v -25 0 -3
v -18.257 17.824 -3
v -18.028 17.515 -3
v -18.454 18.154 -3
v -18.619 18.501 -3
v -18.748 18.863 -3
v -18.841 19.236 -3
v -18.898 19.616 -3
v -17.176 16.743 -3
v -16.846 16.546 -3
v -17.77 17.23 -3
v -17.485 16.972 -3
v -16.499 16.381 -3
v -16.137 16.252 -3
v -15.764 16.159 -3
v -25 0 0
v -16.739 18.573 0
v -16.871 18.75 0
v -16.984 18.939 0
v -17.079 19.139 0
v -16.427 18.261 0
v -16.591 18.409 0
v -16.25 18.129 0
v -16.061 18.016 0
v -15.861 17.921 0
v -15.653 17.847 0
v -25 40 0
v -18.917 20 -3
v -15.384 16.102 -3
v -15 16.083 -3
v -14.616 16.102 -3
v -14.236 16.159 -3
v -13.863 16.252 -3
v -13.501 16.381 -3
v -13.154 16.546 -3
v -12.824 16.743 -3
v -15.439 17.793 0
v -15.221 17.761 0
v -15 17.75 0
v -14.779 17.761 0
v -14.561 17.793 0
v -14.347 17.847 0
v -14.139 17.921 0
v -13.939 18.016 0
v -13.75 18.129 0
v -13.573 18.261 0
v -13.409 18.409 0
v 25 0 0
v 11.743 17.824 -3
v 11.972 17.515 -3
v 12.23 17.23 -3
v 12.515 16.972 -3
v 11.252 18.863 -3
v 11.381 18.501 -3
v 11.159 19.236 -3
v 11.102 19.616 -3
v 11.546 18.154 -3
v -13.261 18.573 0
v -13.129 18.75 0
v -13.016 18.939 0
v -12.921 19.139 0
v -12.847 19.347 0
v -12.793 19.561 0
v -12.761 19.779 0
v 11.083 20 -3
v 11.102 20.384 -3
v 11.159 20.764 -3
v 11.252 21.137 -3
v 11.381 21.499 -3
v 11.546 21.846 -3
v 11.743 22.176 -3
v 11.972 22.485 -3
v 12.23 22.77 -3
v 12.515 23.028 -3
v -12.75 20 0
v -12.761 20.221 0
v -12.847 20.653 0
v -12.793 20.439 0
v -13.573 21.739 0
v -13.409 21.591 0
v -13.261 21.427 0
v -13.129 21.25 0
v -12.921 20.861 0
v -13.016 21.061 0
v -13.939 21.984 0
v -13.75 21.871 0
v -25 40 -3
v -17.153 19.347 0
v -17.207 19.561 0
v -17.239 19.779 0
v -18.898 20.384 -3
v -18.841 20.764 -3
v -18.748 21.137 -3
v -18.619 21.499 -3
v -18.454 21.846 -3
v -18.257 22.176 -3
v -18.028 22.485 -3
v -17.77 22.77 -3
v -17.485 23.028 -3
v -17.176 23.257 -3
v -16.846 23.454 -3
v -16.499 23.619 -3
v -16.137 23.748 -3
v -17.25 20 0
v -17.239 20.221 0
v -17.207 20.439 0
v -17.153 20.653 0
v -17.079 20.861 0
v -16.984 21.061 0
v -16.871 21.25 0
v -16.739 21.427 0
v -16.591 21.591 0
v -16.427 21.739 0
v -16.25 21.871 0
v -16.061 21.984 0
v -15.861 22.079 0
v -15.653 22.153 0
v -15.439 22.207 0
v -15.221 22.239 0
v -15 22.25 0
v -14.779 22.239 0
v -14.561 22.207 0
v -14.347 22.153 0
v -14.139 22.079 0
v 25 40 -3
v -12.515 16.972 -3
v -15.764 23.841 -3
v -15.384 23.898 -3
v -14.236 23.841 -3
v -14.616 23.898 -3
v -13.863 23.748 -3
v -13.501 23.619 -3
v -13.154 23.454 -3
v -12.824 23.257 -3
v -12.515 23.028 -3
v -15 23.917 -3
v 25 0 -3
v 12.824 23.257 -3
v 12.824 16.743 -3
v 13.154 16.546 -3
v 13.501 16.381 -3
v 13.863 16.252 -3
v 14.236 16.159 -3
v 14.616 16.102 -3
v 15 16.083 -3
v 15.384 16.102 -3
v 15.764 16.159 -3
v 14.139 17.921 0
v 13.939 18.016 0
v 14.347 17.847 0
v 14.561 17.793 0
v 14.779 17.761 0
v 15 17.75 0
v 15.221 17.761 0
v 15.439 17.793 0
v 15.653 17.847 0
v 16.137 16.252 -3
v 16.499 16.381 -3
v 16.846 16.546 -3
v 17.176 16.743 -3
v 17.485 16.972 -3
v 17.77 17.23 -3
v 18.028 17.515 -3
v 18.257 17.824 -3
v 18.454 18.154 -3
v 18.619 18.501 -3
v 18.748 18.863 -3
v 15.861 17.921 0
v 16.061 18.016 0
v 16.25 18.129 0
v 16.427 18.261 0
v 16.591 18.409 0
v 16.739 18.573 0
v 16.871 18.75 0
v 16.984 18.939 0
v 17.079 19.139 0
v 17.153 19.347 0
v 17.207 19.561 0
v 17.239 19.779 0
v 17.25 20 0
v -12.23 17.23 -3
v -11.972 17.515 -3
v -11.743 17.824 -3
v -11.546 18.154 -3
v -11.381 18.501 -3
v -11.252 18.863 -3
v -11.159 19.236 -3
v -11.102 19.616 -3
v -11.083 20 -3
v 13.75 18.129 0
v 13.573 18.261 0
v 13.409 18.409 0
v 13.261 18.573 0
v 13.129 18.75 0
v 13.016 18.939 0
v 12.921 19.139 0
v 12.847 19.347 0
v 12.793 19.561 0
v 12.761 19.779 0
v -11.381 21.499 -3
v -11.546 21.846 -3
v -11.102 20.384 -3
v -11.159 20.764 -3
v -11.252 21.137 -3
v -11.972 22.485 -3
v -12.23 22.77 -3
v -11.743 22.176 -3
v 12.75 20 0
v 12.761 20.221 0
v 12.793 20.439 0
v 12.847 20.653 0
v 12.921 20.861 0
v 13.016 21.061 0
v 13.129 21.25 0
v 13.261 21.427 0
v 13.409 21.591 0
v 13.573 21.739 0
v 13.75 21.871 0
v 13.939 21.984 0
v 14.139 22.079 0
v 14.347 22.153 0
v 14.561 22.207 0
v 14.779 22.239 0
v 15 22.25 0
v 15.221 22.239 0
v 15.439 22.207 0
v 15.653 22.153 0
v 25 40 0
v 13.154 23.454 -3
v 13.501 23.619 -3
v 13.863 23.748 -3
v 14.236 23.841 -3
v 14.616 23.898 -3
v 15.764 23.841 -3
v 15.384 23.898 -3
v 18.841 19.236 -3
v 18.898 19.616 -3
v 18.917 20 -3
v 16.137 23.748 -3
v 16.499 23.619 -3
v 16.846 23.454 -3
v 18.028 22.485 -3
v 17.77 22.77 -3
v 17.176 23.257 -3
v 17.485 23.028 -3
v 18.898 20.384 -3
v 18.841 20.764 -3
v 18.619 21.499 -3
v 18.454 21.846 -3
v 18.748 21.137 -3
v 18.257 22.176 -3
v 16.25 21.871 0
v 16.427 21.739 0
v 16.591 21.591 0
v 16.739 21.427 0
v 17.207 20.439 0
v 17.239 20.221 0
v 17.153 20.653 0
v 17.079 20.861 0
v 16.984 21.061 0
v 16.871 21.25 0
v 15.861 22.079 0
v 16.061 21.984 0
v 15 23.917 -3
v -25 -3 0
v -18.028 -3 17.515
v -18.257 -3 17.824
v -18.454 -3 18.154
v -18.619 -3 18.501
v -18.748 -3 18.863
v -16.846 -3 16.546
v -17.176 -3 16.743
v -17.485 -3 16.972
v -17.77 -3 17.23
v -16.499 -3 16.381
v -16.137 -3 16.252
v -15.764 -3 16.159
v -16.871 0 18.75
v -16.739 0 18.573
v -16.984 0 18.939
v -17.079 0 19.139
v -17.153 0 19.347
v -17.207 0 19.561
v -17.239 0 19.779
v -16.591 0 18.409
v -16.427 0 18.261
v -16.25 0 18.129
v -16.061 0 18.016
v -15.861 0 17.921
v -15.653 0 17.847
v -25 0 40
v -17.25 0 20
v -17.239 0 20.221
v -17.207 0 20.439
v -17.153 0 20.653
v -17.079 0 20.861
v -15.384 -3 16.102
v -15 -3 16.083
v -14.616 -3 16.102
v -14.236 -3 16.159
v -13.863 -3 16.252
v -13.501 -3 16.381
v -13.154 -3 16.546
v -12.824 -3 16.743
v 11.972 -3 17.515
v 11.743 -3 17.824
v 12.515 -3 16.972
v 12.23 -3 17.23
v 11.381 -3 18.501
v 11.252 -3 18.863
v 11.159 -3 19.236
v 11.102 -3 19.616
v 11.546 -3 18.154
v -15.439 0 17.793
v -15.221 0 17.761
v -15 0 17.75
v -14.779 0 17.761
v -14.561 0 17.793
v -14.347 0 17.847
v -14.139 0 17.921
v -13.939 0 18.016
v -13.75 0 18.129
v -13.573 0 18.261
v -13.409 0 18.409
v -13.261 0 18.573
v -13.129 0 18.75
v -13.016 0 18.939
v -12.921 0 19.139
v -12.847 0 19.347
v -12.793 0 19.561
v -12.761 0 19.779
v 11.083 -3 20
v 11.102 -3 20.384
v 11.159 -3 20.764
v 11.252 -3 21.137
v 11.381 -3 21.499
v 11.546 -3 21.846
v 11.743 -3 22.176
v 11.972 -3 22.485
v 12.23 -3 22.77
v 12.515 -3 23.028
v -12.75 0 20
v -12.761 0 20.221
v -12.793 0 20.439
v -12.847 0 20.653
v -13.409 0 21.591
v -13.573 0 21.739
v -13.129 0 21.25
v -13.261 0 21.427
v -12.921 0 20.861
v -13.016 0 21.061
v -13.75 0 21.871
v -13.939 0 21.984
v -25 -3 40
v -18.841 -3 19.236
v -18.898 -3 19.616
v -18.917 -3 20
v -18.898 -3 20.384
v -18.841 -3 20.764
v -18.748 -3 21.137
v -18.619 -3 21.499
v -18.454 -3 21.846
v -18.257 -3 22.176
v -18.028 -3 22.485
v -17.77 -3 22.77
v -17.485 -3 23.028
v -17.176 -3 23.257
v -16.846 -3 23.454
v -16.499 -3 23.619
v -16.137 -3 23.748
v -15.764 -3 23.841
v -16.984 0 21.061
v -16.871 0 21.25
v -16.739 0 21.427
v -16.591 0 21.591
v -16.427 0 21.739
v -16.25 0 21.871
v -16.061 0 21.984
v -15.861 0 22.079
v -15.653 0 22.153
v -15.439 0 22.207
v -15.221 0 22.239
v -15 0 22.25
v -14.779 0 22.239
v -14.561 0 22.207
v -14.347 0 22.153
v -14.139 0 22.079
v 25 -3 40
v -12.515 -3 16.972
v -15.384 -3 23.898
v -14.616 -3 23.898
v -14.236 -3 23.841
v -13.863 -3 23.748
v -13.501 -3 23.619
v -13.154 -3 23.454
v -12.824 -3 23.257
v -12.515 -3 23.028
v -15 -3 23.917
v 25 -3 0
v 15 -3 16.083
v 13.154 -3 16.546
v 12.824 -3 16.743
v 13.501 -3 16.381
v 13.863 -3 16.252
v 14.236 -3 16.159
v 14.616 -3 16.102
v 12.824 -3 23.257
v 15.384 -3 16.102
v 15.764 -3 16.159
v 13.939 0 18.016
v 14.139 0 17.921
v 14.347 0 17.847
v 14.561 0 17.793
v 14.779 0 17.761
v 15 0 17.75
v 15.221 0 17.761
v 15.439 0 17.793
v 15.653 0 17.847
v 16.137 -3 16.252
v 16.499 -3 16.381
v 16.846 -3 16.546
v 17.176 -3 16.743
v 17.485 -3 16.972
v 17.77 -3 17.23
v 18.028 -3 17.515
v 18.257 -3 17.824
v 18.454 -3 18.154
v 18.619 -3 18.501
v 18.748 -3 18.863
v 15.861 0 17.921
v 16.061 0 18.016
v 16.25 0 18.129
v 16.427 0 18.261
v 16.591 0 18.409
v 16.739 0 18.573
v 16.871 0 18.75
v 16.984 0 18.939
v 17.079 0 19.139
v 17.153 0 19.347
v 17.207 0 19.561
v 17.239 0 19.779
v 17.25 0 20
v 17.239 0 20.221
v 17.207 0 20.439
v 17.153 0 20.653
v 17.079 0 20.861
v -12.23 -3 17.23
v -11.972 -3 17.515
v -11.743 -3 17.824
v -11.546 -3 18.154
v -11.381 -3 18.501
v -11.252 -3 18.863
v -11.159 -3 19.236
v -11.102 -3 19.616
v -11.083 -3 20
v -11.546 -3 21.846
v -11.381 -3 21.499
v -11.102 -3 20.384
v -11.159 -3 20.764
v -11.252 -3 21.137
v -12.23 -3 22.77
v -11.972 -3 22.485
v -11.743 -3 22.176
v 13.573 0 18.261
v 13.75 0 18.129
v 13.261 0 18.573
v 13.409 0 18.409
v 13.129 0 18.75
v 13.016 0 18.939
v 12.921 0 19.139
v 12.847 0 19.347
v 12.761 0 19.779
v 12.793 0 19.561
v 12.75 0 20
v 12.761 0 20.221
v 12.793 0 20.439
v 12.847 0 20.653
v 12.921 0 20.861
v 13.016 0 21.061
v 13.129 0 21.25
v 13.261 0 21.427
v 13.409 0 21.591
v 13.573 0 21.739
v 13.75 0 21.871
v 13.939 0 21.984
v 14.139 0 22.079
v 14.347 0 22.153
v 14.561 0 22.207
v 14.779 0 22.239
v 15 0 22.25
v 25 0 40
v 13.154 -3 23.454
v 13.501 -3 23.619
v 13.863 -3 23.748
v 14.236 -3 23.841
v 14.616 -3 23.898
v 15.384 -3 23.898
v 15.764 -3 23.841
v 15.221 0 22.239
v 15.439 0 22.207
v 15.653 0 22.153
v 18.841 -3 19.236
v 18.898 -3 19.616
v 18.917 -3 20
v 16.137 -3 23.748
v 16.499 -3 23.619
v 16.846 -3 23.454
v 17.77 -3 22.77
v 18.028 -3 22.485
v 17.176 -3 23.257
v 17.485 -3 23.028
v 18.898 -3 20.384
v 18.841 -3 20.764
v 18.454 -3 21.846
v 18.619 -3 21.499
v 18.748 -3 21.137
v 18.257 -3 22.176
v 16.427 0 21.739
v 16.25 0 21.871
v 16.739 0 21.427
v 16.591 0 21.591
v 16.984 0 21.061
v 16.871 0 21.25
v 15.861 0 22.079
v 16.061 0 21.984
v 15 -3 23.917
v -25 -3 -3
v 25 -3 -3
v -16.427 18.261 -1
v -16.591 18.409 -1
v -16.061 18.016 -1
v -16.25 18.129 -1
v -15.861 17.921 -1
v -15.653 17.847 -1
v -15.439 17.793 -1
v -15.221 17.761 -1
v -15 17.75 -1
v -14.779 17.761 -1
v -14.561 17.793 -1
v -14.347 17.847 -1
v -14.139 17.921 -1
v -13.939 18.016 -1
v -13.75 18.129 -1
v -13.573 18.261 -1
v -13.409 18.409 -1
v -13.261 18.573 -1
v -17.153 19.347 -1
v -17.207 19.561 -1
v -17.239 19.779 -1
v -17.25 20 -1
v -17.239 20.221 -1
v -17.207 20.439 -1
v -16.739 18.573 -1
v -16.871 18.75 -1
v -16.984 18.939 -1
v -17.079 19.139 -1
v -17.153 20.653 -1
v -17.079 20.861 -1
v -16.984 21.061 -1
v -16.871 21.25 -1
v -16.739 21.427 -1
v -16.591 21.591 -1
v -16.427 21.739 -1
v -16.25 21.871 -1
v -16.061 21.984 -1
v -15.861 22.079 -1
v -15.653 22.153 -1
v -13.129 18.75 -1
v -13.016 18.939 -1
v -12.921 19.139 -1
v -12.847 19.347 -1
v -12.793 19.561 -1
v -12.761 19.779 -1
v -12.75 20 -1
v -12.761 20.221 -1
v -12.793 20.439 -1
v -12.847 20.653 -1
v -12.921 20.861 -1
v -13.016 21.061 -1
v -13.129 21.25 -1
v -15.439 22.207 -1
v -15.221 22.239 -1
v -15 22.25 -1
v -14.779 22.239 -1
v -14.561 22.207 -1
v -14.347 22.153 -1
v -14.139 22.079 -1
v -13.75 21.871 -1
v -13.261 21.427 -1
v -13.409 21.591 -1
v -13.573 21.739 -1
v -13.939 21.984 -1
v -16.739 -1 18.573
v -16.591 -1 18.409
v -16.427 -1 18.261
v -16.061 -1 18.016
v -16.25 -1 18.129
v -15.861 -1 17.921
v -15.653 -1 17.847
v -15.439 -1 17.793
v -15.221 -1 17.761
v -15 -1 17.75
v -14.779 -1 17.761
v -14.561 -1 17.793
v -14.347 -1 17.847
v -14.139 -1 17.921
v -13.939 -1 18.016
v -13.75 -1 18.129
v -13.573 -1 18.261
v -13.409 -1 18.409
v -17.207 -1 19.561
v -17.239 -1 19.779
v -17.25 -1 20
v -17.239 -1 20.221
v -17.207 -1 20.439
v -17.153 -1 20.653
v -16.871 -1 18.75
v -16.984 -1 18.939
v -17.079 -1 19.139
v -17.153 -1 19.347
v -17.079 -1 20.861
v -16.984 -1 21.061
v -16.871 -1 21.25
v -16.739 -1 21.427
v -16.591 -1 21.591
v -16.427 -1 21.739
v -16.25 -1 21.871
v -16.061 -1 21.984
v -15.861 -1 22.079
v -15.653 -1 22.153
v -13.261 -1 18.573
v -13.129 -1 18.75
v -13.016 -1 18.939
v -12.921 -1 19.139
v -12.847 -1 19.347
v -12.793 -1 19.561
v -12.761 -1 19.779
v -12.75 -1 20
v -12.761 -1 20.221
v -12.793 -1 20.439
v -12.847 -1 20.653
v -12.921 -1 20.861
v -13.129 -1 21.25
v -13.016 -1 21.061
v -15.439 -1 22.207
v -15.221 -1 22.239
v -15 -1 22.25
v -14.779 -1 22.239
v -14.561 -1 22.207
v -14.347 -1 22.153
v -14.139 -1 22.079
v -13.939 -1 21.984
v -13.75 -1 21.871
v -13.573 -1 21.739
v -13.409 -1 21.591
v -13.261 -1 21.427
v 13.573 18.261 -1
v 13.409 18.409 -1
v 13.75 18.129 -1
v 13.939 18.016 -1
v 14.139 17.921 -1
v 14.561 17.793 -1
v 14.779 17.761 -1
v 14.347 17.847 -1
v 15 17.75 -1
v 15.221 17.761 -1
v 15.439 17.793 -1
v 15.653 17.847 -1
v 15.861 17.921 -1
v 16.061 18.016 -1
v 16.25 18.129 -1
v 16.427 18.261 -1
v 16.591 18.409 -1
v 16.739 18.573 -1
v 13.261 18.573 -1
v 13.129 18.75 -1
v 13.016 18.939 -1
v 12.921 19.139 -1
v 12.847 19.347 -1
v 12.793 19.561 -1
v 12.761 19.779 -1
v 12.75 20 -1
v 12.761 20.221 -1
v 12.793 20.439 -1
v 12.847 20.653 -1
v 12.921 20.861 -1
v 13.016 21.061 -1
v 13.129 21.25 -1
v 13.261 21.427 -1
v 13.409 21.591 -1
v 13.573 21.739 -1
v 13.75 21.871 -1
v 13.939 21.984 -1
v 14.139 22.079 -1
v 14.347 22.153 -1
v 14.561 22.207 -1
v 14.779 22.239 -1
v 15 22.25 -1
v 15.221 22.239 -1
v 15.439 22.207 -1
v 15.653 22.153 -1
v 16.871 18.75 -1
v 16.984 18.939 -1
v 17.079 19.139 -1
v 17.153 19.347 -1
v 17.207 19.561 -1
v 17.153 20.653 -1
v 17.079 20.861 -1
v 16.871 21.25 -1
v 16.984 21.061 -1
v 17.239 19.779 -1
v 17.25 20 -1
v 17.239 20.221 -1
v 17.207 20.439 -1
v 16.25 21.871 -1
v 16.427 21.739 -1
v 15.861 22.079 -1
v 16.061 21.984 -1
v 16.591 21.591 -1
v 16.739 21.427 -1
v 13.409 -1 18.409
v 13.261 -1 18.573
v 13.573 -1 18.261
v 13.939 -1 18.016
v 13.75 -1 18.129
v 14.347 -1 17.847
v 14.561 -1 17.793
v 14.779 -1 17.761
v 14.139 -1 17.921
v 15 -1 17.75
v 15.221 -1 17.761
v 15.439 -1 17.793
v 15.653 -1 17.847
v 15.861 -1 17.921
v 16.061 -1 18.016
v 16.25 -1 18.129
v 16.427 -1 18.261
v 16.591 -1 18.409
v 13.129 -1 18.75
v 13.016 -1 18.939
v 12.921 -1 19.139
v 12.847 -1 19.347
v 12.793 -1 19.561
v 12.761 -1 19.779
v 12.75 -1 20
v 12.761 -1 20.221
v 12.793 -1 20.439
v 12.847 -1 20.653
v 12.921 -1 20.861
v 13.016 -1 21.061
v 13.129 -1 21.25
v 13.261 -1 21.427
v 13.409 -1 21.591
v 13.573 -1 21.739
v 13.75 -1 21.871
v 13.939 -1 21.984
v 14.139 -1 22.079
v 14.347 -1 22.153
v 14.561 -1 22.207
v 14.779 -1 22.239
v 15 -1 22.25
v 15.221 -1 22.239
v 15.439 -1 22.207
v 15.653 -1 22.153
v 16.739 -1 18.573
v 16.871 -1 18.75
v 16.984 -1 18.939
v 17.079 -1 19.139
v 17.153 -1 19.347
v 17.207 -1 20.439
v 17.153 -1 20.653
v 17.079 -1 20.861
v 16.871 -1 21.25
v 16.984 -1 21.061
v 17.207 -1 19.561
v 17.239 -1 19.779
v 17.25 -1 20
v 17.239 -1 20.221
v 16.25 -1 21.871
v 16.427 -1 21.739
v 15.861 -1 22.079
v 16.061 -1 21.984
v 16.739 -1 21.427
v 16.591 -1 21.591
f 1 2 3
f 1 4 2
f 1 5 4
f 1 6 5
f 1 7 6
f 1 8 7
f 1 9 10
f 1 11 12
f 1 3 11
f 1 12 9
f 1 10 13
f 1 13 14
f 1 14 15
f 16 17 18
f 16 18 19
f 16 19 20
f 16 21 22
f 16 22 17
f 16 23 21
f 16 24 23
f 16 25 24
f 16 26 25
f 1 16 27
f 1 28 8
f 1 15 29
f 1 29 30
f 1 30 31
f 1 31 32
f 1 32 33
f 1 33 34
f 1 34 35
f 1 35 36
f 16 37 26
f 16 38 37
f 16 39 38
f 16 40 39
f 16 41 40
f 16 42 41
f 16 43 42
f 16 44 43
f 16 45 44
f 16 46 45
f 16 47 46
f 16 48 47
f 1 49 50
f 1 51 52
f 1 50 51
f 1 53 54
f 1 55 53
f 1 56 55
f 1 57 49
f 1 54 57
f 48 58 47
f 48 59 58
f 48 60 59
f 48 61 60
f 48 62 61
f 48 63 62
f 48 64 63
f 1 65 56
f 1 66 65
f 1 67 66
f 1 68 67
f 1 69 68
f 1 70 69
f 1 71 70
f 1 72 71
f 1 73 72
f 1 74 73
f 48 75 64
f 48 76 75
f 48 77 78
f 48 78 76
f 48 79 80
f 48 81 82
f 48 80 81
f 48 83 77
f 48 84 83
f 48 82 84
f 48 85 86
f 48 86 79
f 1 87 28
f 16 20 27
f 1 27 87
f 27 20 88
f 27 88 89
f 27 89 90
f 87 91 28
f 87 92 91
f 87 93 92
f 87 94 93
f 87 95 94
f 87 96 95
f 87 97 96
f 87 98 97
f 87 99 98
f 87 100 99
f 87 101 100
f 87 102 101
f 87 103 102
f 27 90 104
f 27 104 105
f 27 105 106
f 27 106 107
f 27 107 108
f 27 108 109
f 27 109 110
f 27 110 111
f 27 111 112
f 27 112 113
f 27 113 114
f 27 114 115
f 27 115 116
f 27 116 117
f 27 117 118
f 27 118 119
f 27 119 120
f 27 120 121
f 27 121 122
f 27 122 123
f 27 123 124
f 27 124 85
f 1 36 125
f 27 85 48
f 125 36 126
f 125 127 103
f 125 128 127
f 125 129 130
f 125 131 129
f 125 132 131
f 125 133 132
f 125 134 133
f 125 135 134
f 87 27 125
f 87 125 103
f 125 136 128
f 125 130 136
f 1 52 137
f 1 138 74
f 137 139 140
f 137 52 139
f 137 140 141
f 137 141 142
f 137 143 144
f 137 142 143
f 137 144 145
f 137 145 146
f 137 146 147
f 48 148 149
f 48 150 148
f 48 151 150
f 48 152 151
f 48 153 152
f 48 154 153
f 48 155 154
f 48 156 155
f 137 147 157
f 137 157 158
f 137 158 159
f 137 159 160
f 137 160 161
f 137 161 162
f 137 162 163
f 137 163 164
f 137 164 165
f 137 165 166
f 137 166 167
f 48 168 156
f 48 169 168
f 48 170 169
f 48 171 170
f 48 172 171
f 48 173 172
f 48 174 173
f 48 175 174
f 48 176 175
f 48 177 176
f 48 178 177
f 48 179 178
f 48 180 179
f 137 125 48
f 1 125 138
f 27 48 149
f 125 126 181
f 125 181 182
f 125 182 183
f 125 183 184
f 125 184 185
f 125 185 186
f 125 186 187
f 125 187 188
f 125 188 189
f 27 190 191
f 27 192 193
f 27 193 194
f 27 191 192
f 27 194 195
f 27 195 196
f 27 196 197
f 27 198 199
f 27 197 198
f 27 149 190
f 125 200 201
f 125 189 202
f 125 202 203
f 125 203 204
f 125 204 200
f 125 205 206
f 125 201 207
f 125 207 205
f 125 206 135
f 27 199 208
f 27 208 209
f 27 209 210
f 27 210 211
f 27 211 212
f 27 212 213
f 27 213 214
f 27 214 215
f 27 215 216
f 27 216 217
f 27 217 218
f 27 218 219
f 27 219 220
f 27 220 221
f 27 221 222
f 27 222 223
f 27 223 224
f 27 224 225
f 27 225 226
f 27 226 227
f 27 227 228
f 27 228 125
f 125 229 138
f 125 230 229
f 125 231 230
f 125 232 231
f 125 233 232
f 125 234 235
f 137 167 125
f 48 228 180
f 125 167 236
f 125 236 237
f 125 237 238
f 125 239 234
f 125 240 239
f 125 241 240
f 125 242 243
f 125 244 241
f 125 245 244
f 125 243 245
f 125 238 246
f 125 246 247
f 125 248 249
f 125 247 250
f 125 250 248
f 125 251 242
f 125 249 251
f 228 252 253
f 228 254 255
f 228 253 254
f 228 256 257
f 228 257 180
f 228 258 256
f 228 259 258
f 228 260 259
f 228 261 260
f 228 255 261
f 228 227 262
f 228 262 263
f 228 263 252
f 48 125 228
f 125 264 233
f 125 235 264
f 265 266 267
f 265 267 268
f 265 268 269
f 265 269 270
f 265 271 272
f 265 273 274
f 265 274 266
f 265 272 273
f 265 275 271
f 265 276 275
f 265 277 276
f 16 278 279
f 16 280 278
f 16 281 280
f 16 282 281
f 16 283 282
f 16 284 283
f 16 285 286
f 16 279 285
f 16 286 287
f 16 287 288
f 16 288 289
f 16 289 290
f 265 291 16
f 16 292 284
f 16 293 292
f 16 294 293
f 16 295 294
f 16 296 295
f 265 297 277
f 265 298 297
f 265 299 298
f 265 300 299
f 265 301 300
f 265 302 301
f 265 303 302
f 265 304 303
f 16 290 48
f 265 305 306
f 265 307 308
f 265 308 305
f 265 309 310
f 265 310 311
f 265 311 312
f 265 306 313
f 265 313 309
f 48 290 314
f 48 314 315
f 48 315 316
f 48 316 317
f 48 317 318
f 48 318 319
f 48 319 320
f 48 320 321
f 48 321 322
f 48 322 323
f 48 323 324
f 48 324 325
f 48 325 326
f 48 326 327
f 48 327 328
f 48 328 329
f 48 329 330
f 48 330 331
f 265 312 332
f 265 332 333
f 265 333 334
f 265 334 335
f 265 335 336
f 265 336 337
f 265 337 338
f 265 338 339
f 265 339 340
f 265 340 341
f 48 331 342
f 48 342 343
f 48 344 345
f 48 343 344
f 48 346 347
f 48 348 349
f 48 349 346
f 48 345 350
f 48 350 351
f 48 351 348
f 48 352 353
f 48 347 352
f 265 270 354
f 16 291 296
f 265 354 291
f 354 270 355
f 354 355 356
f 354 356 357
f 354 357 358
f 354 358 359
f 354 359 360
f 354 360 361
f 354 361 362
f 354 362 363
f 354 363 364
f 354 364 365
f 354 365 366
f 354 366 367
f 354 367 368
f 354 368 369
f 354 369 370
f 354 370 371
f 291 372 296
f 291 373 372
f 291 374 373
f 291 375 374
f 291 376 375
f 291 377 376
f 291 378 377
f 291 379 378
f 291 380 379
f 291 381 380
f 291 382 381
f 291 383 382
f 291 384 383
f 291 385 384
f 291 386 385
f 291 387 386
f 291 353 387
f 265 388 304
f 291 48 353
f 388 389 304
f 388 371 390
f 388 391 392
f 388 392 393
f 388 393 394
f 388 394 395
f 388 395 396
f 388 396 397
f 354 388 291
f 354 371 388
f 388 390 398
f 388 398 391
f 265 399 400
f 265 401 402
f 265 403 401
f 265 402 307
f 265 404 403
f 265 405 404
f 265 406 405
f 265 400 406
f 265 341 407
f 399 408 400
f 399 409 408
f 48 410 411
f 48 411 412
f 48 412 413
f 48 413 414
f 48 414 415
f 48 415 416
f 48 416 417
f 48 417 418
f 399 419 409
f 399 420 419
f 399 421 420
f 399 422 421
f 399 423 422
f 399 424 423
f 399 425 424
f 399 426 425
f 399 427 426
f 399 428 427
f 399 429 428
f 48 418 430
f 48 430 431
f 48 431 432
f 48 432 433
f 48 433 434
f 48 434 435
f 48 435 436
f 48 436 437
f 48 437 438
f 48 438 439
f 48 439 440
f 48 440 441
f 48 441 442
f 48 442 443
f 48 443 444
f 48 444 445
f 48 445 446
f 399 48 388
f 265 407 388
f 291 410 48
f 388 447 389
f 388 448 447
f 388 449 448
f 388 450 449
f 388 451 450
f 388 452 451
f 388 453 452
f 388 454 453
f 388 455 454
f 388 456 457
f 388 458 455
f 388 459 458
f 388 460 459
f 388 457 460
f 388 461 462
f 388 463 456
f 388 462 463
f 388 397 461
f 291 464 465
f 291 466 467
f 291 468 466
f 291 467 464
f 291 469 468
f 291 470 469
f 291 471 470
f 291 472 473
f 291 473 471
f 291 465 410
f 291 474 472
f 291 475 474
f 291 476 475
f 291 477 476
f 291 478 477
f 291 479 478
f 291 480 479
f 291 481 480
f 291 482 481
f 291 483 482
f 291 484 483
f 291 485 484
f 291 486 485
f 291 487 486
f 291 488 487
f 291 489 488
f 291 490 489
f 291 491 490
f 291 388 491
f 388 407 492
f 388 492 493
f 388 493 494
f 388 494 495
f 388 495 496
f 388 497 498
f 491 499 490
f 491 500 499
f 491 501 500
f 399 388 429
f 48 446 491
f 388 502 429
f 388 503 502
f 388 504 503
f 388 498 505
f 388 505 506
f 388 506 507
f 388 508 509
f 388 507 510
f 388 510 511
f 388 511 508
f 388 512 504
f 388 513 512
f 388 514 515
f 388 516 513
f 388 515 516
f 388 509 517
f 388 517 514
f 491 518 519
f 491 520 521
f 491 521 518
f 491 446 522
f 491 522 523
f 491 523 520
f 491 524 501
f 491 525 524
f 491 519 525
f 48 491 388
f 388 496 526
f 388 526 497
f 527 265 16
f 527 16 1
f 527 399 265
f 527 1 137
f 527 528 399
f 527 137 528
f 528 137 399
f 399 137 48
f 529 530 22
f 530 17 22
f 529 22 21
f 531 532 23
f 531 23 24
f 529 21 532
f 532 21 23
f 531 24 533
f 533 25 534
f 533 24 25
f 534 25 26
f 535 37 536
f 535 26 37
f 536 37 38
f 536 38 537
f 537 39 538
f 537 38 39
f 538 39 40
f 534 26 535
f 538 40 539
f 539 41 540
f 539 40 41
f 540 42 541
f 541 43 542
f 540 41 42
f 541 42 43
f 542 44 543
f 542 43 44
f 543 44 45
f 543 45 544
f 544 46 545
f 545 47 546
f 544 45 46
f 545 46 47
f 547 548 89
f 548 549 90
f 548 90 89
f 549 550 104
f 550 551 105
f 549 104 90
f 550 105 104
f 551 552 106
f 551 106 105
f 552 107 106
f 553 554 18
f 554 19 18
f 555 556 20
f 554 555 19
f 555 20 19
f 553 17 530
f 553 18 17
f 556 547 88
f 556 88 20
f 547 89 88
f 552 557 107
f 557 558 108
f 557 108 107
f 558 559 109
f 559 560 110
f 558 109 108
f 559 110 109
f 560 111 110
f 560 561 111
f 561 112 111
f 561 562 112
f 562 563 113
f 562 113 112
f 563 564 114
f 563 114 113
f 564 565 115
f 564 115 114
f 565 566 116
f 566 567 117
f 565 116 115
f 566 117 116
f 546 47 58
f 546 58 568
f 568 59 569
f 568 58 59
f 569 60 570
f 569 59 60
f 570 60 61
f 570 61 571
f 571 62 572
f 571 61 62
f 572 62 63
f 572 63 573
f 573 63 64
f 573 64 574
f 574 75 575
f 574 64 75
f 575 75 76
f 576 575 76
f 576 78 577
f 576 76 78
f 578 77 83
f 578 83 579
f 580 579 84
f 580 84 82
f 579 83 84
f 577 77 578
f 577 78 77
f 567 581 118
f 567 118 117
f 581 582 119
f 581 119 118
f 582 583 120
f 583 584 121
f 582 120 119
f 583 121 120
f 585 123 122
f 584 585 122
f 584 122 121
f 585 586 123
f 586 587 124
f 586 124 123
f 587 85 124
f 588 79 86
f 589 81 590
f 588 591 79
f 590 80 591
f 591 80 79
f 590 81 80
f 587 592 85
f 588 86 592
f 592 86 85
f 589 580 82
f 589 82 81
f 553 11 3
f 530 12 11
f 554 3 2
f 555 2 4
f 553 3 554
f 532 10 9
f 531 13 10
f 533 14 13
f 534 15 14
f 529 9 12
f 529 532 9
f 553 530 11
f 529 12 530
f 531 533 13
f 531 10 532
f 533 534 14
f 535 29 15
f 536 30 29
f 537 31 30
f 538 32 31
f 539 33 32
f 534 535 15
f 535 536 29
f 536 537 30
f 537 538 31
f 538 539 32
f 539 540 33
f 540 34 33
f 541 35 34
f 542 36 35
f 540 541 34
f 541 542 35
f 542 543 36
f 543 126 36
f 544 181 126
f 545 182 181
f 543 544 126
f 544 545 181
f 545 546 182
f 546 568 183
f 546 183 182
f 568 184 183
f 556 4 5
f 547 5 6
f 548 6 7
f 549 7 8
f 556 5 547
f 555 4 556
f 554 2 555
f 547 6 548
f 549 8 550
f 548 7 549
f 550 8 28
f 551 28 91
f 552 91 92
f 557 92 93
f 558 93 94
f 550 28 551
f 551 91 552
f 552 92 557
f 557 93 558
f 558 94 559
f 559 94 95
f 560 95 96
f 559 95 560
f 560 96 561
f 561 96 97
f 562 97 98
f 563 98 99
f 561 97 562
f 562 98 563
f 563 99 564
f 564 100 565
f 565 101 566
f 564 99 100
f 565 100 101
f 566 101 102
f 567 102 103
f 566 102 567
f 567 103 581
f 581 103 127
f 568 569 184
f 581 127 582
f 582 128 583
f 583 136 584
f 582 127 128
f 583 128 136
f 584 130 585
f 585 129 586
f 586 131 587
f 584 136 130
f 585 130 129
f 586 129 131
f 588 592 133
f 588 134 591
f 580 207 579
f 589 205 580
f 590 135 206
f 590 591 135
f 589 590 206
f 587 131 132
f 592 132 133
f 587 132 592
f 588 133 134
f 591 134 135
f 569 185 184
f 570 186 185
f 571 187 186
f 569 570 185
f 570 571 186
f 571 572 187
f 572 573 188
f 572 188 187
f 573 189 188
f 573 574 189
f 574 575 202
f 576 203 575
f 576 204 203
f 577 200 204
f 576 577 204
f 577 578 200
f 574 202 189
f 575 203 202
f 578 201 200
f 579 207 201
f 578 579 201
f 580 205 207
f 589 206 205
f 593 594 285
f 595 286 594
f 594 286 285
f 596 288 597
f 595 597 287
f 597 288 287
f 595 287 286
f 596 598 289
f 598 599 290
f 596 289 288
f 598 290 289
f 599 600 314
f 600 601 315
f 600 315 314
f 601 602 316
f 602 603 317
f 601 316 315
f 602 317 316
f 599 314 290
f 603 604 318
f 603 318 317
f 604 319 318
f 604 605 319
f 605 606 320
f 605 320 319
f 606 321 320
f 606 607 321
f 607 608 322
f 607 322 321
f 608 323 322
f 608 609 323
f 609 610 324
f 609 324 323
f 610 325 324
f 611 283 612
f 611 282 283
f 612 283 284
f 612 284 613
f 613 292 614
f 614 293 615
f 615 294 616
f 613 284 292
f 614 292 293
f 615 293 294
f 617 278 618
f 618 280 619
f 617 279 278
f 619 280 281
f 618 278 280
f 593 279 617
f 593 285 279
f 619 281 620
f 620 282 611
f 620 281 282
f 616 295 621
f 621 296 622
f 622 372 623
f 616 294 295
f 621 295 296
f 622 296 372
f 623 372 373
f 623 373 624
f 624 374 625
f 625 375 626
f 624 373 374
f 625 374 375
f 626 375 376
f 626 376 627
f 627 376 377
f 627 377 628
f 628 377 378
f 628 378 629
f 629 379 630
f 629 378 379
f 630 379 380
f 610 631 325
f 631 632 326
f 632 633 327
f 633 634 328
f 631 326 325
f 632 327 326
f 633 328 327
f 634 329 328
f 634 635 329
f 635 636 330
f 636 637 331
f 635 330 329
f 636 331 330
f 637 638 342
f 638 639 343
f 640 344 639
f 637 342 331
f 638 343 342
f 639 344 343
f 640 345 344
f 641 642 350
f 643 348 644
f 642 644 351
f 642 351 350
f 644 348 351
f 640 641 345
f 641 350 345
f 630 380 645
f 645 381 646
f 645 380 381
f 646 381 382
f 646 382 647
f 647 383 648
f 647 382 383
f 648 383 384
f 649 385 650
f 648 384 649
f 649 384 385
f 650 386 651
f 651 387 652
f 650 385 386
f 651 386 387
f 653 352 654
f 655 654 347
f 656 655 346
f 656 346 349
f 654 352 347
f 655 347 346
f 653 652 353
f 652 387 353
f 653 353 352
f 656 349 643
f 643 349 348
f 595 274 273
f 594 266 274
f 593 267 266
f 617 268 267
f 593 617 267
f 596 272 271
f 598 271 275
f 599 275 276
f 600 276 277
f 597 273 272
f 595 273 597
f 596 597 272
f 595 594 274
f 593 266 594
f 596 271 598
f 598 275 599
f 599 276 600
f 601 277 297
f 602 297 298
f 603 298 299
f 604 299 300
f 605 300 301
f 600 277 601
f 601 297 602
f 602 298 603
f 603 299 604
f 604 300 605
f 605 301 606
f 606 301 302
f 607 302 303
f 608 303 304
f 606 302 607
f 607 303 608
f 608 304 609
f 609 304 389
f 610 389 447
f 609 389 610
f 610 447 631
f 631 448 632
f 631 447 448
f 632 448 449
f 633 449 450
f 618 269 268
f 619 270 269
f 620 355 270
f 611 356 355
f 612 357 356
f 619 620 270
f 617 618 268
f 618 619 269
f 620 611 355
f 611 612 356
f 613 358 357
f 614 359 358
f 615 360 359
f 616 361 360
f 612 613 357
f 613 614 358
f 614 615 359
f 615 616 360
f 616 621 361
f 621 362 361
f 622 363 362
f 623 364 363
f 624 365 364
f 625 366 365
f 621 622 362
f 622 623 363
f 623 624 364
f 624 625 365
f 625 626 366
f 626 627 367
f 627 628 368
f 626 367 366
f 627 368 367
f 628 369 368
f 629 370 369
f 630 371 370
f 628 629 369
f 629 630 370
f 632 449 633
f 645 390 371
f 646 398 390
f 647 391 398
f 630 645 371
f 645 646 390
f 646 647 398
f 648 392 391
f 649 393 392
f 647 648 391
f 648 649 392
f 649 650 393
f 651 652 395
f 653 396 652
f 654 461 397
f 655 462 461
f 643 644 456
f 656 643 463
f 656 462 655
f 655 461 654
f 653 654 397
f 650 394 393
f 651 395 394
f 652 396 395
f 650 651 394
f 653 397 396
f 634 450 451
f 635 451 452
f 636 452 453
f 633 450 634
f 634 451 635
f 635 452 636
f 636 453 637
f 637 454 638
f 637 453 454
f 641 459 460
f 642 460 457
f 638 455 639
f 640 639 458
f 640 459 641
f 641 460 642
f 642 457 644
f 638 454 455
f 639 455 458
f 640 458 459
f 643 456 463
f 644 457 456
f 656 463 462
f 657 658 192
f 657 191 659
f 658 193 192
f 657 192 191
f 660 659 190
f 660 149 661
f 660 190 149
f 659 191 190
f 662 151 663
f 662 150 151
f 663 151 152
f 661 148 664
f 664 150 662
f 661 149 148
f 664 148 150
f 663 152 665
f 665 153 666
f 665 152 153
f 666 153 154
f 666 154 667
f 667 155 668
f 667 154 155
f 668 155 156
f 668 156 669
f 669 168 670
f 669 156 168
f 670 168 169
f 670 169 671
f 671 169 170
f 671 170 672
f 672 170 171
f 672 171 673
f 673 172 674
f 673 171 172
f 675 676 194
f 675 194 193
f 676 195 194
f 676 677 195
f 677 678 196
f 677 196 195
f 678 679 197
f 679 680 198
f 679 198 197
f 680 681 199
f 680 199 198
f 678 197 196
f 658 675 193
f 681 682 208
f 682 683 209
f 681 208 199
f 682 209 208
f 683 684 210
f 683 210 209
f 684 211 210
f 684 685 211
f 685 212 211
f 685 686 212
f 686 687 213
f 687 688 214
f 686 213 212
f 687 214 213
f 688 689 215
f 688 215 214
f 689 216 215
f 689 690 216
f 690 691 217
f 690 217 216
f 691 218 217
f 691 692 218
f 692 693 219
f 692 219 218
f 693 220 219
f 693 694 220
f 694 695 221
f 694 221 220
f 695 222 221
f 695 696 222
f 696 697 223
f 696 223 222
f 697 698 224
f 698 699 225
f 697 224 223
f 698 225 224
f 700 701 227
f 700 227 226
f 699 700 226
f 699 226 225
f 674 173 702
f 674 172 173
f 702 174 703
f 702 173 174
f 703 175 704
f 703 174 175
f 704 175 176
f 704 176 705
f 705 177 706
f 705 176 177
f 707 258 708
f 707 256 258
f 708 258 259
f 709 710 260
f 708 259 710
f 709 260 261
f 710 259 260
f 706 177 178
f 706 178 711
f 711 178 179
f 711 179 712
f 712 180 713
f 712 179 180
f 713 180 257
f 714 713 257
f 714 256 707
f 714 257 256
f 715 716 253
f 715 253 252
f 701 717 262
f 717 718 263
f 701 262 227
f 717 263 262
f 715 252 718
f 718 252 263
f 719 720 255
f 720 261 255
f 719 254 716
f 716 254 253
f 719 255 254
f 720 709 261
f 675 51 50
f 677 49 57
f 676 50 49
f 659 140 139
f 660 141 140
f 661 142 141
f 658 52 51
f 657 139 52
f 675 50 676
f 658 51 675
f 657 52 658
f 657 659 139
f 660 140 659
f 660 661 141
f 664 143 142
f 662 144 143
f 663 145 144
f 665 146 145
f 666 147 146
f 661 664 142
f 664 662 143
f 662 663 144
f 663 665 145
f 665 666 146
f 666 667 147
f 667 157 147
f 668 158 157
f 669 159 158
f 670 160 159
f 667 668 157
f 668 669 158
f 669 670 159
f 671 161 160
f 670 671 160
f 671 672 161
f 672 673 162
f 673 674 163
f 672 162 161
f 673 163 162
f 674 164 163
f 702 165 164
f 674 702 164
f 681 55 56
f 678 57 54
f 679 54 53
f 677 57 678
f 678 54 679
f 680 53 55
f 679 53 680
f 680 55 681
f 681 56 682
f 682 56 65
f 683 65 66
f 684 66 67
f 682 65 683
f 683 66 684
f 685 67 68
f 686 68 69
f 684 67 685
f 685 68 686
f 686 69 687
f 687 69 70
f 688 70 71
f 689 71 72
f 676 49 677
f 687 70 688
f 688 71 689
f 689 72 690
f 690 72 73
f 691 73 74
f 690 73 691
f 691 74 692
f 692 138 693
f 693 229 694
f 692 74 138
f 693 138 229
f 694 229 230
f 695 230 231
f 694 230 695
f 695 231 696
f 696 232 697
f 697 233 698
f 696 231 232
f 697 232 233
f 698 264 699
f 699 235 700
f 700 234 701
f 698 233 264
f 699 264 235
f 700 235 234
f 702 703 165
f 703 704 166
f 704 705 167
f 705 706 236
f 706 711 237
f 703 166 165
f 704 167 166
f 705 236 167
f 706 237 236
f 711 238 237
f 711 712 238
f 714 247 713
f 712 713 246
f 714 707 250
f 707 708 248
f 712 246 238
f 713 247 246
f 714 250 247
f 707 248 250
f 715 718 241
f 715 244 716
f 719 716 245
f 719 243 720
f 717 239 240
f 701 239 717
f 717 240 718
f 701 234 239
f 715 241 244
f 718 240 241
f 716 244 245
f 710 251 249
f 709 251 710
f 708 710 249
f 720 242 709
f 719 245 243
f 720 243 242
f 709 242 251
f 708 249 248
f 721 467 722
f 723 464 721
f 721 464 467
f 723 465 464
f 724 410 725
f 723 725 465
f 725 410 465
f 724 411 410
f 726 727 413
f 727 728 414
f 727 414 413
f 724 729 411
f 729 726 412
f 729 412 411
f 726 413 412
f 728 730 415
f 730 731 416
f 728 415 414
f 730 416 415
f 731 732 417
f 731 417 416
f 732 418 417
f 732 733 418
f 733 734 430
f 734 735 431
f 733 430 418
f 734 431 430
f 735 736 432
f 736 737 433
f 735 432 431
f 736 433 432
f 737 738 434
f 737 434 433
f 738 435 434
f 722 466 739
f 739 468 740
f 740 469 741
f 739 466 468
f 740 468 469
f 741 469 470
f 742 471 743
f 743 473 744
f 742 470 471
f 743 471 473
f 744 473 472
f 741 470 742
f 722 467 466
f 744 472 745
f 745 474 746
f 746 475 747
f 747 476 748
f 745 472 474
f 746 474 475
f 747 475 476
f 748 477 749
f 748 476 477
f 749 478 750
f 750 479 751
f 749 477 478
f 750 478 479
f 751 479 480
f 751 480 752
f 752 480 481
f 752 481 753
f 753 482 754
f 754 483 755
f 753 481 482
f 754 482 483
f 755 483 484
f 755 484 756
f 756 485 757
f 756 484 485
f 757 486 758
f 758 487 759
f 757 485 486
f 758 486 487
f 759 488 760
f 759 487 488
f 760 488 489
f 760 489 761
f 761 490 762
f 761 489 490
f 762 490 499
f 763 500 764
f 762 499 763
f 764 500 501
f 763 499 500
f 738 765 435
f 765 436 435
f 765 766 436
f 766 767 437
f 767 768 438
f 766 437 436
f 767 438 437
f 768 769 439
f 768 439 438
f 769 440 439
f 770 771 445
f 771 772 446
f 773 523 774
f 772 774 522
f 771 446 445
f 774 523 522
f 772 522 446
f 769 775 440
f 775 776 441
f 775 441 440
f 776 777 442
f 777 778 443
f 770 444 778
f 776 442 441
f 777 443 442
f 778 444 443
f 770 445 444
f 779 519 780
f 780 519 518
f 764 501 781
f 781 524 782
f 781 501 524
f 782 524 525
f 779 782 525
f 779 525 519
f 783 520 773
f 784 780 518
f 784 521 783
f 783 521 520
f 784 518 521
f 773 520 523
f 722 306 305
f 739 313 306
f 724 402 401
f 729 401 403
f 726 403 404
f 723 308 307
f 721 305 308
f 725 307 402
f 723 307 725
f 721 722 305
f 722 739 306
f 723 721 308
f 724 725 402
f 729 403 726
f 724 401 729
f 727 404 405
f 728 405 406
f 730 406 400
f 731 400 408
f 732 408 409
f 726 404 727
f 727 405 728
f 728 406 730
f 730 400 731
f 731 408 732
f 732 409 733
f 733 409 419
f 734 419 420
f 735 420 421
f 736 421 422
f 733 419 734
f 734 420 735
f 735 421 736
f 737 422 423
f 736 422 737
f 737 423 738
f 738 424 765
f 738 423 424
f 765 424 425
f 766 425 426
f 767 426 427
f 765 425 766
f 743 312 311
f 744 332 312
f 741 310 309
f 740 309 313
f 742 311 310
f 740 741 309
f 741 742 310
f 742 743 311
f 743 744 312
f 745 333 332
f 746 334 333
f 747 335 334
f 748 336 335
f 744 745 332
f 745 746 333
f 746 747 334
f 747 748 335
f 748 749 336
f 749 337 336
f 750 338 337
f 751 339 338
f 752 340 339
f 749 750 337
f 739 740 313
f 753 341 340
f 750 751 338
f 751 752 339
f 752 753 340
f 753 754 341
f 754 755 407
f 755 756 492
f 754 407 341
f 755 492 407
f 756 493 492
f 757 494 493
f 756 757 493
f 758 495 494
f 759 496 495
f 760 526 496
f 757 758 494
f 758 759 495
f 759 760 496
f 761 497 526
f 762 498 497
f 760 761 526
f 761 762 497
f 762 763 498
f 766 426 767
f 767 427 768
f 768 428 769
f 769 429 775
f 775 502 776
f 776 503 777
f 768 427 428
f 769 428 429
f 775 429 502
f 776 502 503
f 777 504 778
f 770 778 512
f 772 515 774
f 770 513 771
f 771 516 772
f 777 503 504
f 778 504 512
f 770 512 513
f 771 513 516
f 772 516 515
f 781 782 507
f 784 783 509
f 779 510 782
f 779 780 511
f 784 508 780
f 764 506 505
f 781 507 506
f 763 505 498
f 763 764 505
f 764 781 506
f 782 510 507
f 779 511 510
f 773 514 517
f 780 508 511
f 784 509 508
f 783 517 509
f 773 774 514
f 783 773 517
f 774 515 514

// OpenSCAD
$fn = 64;

width = 50;
depth = 40;
height = 40;
thickness = 3;

through_d = 4.5;
csk_d = 8;
csk_depth = 2;

edge_offset = 10;
eps = 0.1;

hole_x = width / 2 - edge_offset;

module l_bracket() {
    union() {
        // Horizontal flange
        translate([-width / 2, 0, -thickness])
            cube([width, depth, thickness]);

        // Vertical flange
        translate([-width / 2, -thickness, 0])
            cube([width, thickness, height]);

        // Corner material for a connected sharp bend
        translate([-width / 2, -thickness, -thickness])
            cube([width, thickness, thickness]);
    }
}

module countersunk_hole_horizontal(x, y) {
    // Through hole
    translate([x, y, -thickness - eps])
        cylinder(h = thickness + 2 * eps, d = through_d);

    // Countersink on outer side (bottom)
    translate([x, y, -thickness - eps])
        cylinder(h = csk_depth + eps, d1 = csk_d, d2 = through_d);
}

module countersunk_hole_vertical(x, z) {
    // Through hole
    translate([x, -thickness - eps, z])
        rotate([-90, 0, 0])
            cylinder(h = thickness + 2 * eps, d = through_d);

    // Countersink on outer side
    translate([x, -thickness - eps, z])
        rotate([-90, 0, 0])
            cylinder(h = csk_depth + eps, d1 = csk_d, d2 = through_d);
}

difference() {
    l_bracket();

    for (x = [-hole_x, hole_x]) {
        countersunk_hole_horizontal(x, depth / 2);
        countersunk_hole_vertical(x, height / 2);
    }
}
